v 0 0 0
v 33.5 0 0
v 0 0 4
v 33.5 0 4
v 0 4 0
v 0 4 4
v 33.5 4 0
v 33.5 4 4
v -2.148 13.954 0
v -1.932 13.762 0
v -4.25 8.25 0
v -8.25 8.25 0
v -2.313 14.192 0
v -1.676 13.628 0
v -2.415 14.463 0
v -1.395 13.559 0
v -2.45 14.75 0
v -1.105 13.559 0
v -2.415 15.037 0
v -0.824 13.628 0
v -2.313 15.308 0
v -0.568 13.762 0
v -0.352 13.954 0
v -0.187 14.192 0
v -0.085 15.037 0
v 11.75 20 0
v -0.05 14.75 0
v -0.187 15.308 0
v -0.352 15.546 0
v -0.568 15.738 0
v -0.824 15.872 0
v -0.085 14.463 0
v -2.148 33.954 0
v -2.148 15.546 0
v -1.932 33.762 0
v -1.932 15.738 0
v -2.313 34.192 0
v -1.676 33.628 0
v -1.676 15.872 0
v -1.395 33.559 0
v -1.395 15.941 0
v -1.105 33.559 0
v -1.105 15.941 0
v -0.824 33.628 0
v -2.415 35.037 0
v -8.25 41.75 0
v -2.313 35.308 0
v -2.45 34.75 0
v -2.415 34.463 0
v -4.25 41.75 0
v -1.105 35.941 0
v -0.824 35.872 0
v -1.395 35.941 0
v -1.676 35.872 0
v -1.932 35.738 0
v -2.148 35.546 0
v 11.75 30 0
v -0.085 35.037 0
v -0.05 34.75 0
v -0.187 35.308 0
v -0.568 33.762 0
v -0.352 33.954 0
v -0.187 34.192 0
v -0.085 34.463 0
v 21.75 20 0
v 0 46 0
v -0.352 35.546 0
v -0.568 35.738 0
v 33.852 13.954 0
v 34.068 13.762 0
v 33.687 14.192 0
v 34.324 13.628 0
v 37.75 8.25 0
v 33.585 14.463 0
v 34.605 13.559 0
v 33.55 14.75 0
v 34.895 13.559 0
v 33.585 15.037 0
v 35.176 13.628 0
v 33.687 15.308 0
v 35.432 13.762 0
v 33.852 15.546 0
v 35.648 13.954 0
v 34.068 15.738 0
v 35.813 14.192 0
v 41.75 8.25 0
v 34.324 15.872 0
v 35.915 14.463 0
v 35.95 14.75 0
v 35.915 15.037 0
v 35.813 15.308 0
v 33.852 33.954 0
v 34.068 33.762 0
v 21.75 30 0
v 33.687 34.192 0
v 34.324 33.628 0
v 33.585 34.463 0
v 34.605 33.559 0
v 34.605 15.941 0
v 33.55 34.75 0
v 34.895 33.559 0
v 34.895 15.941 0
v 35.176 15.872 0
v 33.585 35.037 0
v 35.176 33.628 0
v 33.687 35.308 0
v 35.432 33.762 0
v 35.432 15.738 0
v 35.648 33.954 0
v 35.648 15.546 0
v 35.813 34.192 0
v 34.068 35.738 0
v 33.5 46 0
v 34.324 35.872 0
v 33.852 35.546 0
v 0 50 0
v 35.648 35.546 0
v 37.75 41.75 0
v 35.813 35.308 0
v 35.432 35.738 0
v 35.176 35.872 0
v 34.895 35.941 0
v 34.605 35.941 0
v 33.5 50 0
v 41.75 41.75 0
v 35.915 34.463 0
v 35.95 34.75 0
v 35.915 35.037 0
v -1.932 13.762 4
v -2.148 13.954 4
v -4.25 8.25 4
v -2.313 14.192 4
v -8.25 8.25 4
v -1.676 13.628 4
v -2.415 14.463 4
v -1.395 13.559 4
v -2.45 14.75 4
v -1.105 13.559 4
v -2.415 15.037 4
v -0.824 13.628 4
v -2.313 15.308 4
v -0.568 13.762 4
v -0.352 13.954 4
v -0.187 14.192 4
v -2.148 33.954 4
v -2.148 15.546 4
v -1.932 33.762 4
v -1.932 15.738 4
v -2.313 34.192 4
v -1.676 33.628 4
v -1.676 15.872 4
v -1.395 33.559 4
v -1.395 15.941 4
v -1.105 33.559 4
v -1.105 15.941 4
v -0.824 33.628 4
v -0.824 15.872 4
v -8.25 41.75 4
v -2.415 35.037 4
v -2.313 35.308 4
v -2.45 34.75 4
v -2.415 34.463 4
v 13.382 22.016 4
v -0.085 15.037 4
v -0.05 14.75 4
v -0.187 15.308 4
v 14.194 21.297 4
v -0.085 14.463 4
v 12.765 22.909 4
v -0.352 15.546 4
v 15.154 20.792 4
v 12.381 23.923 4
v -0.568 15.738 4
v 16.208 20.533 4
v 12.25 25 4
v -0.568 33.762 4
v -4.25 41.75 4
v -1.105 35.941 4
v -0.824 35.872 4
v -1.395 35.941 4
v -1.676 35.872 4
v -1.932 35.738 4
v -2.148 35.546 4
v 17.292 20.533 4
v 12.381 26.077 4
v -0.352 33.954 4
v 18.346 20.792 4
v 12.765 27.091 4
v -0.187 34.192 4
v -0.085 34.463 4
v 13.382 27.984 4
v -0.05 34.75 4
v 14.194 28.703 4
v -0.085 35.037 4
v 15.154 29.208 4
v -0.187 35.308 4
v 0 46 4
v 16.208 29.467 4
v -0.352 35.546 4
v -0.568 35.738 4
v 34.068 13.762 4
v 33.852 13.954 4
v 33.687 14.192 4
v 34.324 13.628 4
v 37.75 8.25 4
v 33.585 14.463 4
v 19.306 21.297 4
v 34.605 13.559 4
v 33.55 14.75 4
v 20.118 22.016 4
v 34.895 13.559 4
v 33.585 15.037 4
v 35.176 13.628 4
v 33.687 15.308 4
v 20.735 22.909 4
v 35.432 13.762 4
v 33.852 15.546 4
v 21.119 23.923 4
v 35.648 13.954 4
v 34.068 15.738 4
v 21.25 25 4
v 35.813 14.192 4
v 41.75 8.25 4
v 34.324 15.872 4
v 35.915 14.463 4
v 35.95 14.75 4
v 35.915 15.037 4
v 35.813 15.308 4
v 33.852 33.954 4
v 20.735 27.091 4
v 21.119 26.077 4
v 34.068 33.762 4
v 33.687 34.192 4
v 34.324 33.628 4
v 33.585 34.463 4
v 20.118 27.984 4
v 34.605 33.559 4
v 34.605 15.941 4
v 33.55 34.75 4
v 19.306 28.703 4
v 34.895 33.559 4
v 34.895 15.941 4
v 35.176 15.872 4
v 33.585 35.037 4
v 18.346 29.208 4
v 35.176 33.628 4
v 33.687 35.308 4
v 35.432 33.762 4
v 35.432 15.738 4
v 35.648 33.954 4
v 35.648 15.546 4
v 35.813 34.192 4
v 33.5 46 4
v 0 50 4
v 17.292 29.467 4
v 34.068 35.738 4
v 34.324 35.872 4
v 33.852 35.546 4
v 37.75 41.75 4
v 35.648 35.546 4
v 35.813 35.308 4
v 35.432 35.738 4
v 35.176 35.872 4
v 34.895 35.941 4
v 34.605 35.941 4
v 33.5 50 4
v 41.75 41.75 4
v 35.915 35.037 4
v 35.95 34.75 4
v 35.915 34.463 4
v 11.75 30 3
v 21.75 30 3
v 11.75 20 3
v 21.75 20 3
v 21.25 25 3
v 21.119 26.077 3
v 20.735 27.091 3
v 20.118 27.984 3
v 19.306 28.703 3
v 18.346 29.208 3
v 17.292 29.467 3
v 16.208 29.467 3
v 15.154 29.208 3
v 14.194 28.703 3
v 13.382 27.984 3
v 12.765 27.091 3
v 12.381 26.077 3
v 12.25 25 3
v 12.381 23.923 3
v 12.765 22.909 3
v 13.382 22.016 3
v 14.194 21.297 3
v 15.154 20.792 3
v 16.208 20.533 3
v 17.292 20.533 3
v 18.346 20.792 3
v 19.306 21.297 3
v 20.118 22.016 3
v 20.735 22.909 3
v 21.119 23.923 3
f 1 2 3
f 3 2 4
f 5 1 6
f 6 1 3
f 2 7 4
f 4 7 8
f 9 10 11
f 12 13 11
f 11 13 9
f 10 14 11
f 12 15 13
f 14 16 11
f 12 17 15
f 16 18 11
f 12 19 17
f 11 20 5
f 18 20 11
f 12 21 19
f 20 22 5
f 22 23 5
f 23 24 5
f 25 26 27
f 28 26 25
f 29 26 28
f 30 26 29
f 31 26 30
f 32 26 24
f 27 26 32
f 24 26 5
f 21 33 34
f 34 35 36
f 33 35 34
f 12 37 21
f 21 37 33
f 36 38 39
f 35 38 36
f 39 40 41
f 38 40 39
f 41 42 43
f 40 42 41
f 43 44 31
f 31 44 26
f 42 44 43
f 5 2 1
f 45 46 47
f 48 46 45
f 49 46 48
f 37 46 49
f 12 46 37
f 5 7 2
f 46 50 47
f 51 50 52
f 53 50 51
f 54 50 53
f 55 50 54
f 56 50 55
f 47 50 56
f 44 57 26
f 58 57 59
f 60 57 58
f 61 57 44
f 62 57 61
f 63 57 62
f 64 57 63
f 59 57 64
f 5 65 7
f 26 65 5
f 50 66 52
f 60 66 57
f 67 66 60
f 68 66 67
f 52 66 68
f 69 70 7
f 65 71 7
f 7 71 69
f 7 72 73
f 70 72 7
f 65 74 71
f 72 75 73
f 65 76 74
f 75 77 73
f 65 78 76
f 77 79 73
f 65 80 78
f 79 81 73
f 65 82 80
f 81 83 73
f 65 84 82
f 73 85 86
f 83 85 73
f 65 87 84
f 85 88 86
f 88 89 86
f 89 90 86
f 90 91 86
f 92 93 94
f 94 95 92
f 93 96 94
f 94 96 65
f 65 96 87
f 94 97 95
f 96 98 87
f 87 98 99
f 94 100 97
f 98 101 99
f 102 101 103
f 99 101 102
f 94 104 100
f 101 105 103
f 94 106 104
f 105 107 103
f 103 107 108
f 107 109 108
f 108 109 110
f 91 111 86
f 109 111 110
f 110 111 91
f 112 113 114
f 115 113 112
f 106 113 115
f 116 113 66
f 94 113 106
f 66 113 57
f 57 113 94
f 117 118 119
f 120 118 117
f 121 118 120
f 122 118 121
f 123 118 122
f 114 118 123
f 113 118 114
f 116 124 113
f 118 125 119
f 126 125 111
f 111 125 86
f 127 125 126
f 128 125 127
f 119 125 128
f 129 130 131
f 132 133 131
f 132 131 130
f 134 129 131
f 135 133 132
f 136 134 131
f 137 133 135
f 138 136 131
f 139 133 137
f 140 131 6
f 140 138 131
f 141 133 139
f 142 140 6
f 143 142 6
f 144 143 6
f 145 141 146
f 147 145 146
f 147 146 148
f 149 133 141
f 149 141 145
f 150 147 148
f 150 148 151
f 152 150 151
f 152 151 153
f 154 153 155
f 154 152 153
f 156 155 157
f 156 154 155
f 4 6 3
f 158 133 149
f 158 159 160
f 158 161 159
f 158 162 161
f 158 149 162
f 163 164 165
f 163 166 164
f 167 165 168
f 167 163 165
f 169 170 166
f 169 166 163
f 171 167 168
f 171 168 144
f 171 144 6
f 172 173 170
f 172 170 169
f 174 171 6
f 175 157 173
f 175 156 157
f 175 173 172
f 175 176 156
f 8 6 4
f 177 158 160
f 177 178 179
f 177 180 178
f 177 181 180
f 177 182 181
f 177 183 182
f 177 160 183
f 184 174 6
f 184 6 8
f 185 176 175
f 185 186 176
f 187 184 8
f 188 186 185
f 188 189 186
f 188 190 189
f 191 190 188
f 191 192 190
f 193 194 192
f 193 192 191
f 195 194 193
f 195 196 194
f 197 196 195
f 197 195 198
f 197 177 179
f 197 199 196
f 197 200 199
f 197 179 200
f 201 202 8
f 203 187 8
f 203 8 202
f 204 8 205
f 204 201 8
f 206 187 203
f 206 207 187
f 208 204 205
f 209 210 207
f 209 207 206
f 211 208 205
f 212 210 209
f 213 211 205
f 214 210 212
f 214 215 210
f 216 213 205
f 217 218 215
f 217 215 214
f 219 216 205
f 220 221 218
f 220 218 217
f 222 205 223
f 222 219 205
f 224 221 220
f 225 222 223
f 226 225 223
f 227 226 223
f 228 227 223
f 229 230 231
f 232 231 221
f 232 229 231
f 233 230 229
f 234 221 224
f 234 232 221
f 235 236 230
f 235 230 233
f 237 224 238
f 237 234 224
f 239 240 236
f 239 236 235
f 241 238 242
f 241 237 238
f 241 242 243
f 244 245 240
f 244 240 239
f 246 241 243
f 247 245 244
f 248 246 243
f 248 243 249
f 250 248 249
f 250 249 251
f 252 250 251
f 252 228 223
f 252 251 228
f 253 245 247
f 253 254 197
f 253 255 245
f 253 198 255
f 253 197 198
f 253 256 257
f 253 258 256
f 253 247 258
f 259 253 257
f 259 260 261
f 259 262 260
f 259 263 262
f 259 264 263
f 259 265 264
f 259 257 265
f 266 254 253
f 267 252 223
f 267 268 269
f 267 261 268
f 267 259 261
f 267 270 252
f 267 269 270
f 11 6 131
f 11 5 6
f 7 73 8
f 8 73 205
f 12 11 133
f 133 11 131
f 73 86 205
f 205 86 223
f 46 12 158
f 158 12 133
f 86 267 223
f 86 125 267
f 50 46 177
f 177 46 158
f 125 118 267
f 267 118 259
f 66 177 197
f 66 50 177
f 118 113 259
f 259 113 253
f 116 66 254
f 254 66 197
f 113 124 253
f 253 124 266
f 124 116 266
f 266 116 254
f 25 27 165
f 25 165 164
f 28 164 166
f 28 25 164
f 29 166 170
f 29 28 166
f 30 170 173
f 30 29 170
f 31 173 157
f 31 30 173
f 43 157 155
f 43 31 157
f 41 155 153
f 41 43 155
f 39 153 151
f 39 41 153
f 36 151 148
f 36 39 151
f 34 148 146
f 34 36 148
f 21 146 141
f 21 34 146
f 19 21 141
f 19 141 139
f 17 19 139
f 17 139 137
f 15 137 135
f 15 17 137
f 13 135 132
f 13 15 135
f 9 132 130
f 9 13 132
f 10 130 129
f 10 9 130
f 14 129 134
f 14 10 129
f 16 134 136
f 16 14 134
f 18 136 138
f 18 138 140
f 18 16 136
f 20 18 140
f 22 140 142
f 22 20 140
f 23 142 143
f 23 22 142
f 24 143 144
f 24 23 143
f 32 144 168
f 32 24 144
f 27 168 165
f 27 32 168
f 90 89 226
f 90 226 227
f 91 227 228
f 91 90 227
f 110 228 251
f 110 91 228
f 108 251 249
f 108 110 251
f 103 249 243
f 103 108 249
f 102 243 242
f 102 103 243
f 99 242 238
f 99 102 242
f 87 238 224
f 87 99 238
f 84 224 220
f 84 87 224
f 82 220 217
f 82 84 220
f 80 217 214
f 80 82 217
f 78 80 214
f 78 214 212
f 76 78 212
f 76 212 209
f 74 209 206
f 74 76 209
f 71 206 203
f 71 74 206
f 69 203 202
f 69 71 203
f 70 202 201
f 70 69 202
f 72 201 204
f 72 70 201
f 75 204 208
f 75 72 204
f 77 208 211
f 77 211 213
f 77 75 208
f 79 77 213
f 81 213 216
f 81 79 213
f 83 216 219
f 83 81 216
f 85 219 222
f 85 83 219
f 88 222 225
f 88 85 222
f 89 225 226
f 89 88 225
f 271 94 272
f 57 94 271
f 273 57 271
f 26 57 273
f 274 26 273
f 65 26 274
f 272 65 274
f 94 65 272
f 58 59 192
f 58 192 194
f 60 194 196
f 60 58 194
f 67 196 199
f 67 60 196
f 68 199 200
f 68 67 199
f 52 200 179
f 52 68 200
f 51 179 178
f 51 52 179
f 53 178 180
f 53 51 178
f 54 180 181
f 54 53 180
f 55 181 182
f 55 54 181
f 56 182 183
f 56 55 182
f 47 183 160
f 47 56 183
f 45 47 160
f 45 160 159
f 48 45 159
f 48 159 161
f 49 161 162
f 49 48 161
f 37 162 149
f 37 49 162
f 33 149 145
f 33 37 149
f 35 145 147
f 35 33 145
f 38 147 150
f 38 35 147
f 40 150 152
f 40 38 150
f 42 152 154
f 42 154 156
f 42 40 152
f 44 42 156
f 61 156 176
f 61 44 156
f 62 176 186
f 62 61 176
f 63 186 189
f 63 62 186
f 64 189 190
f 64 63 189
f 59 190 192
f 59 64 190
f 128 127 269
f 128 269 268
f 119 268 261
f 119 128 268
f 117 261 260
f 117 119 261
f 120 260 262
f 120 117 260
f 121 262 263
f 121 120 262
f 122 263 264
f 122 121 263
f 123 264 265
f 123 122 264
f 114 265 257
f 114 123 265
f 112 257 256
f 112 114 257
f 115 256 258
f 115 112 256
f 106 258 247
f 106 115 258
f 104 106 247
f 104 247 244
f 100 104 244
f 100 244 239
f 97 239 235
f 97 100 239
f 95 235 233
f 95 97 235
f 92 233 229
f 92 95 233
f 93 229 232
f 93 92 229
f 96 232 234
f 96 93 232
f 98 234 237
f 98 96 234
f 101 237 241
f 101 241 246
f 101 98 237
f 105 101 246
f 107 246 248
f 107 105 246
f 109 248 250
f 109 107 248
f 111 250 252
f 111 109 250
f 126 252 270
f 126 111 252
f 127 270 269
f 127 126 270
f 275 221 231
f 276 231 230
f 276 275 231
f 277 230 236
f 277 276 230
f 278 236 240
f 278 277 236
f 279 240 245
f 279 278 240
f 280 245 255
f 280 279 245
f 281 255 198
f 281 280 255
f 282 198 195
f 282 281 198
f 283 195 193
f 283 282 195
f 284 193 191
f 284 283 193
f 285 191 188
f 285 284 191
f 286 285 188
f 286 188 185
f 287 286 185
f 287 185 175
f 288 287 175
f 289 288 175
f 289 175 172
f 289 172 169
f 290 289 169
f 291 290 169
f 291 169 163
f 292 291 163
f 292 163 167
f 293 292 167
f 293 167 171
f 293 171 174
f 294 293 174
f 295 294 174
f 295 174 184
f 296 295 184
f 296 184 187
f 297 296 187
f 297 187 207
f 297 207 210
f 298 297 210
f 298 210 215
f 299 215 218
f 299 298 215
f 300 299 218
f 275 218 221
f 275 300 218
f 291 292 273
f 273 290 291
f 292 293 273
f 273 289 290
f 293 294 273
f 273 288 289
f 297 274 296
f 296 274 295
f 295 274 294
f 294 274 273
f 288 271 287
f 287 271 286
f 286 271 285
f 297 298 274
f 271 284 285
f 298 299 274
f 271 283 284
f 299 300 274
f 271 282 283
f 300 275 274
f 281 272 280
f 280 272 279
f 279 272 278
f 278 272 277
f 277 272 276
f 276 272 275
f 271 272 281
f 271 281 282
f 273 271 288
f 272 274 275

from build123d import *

# Parameters (mm, degrees)
SKETCH_R     = 4.5
SKETCH_R_2   = 1.2
PAD_DEPTH    = 4
SKETCH001_W  = 10
SKETCH001_H  = 10
POCKET_DEPTH = 3


with BuildPart() as part:
    # Sketch → Pad (new body)
    with BuildSketch(Plane.XY):
        Polygon((0, 0), (33.5, 0), (33.5, 4), (37.75, 8.25), (41.75, 8.25), (41.75, 41.75), (37.75, 41.75), (33.5, 46), (33.5, 50), (0, 50), (0, 46), (-4.25, 41.75), (-8.25, 41.75), (-8.25, 8.25), (-4.25, 8.25), (0, 4), align=None)
        with Locations((16.75, 25)):
            Circle(SKETCH_R, mode=Mode.SUBTRACT)
        with Locations((-1.25, 34.75)):
            Circle(SKETCH_R_2, mode=Mode.SUBTRACT)
        with Locations((-1.25, 14.75)):
            Circle(SKETCH_R_2, mode=Mode.SUBTRACT)
        with Locations((34.75, 34.75)):
            Circle(SKETCH_R_2, mode=Mode.SUBTRACT)
        with Locations((34.75, 14.75)):
            Circle(SKETCH_R_2, mode=Mode.SUBTRACT)
    extrude(amount=PAD_DEPTH)

    # Sketch001 → Pocket (cut)
    with BuildSketch(Plane.XY):
        with Locations((16.75, 25)):
            Rectangle(SKETCH001_W, SKETCH001_H)
    extrude(amount=POCKET_DEPTH, mode=Mode.SUBTRACT)


solid = part.part
